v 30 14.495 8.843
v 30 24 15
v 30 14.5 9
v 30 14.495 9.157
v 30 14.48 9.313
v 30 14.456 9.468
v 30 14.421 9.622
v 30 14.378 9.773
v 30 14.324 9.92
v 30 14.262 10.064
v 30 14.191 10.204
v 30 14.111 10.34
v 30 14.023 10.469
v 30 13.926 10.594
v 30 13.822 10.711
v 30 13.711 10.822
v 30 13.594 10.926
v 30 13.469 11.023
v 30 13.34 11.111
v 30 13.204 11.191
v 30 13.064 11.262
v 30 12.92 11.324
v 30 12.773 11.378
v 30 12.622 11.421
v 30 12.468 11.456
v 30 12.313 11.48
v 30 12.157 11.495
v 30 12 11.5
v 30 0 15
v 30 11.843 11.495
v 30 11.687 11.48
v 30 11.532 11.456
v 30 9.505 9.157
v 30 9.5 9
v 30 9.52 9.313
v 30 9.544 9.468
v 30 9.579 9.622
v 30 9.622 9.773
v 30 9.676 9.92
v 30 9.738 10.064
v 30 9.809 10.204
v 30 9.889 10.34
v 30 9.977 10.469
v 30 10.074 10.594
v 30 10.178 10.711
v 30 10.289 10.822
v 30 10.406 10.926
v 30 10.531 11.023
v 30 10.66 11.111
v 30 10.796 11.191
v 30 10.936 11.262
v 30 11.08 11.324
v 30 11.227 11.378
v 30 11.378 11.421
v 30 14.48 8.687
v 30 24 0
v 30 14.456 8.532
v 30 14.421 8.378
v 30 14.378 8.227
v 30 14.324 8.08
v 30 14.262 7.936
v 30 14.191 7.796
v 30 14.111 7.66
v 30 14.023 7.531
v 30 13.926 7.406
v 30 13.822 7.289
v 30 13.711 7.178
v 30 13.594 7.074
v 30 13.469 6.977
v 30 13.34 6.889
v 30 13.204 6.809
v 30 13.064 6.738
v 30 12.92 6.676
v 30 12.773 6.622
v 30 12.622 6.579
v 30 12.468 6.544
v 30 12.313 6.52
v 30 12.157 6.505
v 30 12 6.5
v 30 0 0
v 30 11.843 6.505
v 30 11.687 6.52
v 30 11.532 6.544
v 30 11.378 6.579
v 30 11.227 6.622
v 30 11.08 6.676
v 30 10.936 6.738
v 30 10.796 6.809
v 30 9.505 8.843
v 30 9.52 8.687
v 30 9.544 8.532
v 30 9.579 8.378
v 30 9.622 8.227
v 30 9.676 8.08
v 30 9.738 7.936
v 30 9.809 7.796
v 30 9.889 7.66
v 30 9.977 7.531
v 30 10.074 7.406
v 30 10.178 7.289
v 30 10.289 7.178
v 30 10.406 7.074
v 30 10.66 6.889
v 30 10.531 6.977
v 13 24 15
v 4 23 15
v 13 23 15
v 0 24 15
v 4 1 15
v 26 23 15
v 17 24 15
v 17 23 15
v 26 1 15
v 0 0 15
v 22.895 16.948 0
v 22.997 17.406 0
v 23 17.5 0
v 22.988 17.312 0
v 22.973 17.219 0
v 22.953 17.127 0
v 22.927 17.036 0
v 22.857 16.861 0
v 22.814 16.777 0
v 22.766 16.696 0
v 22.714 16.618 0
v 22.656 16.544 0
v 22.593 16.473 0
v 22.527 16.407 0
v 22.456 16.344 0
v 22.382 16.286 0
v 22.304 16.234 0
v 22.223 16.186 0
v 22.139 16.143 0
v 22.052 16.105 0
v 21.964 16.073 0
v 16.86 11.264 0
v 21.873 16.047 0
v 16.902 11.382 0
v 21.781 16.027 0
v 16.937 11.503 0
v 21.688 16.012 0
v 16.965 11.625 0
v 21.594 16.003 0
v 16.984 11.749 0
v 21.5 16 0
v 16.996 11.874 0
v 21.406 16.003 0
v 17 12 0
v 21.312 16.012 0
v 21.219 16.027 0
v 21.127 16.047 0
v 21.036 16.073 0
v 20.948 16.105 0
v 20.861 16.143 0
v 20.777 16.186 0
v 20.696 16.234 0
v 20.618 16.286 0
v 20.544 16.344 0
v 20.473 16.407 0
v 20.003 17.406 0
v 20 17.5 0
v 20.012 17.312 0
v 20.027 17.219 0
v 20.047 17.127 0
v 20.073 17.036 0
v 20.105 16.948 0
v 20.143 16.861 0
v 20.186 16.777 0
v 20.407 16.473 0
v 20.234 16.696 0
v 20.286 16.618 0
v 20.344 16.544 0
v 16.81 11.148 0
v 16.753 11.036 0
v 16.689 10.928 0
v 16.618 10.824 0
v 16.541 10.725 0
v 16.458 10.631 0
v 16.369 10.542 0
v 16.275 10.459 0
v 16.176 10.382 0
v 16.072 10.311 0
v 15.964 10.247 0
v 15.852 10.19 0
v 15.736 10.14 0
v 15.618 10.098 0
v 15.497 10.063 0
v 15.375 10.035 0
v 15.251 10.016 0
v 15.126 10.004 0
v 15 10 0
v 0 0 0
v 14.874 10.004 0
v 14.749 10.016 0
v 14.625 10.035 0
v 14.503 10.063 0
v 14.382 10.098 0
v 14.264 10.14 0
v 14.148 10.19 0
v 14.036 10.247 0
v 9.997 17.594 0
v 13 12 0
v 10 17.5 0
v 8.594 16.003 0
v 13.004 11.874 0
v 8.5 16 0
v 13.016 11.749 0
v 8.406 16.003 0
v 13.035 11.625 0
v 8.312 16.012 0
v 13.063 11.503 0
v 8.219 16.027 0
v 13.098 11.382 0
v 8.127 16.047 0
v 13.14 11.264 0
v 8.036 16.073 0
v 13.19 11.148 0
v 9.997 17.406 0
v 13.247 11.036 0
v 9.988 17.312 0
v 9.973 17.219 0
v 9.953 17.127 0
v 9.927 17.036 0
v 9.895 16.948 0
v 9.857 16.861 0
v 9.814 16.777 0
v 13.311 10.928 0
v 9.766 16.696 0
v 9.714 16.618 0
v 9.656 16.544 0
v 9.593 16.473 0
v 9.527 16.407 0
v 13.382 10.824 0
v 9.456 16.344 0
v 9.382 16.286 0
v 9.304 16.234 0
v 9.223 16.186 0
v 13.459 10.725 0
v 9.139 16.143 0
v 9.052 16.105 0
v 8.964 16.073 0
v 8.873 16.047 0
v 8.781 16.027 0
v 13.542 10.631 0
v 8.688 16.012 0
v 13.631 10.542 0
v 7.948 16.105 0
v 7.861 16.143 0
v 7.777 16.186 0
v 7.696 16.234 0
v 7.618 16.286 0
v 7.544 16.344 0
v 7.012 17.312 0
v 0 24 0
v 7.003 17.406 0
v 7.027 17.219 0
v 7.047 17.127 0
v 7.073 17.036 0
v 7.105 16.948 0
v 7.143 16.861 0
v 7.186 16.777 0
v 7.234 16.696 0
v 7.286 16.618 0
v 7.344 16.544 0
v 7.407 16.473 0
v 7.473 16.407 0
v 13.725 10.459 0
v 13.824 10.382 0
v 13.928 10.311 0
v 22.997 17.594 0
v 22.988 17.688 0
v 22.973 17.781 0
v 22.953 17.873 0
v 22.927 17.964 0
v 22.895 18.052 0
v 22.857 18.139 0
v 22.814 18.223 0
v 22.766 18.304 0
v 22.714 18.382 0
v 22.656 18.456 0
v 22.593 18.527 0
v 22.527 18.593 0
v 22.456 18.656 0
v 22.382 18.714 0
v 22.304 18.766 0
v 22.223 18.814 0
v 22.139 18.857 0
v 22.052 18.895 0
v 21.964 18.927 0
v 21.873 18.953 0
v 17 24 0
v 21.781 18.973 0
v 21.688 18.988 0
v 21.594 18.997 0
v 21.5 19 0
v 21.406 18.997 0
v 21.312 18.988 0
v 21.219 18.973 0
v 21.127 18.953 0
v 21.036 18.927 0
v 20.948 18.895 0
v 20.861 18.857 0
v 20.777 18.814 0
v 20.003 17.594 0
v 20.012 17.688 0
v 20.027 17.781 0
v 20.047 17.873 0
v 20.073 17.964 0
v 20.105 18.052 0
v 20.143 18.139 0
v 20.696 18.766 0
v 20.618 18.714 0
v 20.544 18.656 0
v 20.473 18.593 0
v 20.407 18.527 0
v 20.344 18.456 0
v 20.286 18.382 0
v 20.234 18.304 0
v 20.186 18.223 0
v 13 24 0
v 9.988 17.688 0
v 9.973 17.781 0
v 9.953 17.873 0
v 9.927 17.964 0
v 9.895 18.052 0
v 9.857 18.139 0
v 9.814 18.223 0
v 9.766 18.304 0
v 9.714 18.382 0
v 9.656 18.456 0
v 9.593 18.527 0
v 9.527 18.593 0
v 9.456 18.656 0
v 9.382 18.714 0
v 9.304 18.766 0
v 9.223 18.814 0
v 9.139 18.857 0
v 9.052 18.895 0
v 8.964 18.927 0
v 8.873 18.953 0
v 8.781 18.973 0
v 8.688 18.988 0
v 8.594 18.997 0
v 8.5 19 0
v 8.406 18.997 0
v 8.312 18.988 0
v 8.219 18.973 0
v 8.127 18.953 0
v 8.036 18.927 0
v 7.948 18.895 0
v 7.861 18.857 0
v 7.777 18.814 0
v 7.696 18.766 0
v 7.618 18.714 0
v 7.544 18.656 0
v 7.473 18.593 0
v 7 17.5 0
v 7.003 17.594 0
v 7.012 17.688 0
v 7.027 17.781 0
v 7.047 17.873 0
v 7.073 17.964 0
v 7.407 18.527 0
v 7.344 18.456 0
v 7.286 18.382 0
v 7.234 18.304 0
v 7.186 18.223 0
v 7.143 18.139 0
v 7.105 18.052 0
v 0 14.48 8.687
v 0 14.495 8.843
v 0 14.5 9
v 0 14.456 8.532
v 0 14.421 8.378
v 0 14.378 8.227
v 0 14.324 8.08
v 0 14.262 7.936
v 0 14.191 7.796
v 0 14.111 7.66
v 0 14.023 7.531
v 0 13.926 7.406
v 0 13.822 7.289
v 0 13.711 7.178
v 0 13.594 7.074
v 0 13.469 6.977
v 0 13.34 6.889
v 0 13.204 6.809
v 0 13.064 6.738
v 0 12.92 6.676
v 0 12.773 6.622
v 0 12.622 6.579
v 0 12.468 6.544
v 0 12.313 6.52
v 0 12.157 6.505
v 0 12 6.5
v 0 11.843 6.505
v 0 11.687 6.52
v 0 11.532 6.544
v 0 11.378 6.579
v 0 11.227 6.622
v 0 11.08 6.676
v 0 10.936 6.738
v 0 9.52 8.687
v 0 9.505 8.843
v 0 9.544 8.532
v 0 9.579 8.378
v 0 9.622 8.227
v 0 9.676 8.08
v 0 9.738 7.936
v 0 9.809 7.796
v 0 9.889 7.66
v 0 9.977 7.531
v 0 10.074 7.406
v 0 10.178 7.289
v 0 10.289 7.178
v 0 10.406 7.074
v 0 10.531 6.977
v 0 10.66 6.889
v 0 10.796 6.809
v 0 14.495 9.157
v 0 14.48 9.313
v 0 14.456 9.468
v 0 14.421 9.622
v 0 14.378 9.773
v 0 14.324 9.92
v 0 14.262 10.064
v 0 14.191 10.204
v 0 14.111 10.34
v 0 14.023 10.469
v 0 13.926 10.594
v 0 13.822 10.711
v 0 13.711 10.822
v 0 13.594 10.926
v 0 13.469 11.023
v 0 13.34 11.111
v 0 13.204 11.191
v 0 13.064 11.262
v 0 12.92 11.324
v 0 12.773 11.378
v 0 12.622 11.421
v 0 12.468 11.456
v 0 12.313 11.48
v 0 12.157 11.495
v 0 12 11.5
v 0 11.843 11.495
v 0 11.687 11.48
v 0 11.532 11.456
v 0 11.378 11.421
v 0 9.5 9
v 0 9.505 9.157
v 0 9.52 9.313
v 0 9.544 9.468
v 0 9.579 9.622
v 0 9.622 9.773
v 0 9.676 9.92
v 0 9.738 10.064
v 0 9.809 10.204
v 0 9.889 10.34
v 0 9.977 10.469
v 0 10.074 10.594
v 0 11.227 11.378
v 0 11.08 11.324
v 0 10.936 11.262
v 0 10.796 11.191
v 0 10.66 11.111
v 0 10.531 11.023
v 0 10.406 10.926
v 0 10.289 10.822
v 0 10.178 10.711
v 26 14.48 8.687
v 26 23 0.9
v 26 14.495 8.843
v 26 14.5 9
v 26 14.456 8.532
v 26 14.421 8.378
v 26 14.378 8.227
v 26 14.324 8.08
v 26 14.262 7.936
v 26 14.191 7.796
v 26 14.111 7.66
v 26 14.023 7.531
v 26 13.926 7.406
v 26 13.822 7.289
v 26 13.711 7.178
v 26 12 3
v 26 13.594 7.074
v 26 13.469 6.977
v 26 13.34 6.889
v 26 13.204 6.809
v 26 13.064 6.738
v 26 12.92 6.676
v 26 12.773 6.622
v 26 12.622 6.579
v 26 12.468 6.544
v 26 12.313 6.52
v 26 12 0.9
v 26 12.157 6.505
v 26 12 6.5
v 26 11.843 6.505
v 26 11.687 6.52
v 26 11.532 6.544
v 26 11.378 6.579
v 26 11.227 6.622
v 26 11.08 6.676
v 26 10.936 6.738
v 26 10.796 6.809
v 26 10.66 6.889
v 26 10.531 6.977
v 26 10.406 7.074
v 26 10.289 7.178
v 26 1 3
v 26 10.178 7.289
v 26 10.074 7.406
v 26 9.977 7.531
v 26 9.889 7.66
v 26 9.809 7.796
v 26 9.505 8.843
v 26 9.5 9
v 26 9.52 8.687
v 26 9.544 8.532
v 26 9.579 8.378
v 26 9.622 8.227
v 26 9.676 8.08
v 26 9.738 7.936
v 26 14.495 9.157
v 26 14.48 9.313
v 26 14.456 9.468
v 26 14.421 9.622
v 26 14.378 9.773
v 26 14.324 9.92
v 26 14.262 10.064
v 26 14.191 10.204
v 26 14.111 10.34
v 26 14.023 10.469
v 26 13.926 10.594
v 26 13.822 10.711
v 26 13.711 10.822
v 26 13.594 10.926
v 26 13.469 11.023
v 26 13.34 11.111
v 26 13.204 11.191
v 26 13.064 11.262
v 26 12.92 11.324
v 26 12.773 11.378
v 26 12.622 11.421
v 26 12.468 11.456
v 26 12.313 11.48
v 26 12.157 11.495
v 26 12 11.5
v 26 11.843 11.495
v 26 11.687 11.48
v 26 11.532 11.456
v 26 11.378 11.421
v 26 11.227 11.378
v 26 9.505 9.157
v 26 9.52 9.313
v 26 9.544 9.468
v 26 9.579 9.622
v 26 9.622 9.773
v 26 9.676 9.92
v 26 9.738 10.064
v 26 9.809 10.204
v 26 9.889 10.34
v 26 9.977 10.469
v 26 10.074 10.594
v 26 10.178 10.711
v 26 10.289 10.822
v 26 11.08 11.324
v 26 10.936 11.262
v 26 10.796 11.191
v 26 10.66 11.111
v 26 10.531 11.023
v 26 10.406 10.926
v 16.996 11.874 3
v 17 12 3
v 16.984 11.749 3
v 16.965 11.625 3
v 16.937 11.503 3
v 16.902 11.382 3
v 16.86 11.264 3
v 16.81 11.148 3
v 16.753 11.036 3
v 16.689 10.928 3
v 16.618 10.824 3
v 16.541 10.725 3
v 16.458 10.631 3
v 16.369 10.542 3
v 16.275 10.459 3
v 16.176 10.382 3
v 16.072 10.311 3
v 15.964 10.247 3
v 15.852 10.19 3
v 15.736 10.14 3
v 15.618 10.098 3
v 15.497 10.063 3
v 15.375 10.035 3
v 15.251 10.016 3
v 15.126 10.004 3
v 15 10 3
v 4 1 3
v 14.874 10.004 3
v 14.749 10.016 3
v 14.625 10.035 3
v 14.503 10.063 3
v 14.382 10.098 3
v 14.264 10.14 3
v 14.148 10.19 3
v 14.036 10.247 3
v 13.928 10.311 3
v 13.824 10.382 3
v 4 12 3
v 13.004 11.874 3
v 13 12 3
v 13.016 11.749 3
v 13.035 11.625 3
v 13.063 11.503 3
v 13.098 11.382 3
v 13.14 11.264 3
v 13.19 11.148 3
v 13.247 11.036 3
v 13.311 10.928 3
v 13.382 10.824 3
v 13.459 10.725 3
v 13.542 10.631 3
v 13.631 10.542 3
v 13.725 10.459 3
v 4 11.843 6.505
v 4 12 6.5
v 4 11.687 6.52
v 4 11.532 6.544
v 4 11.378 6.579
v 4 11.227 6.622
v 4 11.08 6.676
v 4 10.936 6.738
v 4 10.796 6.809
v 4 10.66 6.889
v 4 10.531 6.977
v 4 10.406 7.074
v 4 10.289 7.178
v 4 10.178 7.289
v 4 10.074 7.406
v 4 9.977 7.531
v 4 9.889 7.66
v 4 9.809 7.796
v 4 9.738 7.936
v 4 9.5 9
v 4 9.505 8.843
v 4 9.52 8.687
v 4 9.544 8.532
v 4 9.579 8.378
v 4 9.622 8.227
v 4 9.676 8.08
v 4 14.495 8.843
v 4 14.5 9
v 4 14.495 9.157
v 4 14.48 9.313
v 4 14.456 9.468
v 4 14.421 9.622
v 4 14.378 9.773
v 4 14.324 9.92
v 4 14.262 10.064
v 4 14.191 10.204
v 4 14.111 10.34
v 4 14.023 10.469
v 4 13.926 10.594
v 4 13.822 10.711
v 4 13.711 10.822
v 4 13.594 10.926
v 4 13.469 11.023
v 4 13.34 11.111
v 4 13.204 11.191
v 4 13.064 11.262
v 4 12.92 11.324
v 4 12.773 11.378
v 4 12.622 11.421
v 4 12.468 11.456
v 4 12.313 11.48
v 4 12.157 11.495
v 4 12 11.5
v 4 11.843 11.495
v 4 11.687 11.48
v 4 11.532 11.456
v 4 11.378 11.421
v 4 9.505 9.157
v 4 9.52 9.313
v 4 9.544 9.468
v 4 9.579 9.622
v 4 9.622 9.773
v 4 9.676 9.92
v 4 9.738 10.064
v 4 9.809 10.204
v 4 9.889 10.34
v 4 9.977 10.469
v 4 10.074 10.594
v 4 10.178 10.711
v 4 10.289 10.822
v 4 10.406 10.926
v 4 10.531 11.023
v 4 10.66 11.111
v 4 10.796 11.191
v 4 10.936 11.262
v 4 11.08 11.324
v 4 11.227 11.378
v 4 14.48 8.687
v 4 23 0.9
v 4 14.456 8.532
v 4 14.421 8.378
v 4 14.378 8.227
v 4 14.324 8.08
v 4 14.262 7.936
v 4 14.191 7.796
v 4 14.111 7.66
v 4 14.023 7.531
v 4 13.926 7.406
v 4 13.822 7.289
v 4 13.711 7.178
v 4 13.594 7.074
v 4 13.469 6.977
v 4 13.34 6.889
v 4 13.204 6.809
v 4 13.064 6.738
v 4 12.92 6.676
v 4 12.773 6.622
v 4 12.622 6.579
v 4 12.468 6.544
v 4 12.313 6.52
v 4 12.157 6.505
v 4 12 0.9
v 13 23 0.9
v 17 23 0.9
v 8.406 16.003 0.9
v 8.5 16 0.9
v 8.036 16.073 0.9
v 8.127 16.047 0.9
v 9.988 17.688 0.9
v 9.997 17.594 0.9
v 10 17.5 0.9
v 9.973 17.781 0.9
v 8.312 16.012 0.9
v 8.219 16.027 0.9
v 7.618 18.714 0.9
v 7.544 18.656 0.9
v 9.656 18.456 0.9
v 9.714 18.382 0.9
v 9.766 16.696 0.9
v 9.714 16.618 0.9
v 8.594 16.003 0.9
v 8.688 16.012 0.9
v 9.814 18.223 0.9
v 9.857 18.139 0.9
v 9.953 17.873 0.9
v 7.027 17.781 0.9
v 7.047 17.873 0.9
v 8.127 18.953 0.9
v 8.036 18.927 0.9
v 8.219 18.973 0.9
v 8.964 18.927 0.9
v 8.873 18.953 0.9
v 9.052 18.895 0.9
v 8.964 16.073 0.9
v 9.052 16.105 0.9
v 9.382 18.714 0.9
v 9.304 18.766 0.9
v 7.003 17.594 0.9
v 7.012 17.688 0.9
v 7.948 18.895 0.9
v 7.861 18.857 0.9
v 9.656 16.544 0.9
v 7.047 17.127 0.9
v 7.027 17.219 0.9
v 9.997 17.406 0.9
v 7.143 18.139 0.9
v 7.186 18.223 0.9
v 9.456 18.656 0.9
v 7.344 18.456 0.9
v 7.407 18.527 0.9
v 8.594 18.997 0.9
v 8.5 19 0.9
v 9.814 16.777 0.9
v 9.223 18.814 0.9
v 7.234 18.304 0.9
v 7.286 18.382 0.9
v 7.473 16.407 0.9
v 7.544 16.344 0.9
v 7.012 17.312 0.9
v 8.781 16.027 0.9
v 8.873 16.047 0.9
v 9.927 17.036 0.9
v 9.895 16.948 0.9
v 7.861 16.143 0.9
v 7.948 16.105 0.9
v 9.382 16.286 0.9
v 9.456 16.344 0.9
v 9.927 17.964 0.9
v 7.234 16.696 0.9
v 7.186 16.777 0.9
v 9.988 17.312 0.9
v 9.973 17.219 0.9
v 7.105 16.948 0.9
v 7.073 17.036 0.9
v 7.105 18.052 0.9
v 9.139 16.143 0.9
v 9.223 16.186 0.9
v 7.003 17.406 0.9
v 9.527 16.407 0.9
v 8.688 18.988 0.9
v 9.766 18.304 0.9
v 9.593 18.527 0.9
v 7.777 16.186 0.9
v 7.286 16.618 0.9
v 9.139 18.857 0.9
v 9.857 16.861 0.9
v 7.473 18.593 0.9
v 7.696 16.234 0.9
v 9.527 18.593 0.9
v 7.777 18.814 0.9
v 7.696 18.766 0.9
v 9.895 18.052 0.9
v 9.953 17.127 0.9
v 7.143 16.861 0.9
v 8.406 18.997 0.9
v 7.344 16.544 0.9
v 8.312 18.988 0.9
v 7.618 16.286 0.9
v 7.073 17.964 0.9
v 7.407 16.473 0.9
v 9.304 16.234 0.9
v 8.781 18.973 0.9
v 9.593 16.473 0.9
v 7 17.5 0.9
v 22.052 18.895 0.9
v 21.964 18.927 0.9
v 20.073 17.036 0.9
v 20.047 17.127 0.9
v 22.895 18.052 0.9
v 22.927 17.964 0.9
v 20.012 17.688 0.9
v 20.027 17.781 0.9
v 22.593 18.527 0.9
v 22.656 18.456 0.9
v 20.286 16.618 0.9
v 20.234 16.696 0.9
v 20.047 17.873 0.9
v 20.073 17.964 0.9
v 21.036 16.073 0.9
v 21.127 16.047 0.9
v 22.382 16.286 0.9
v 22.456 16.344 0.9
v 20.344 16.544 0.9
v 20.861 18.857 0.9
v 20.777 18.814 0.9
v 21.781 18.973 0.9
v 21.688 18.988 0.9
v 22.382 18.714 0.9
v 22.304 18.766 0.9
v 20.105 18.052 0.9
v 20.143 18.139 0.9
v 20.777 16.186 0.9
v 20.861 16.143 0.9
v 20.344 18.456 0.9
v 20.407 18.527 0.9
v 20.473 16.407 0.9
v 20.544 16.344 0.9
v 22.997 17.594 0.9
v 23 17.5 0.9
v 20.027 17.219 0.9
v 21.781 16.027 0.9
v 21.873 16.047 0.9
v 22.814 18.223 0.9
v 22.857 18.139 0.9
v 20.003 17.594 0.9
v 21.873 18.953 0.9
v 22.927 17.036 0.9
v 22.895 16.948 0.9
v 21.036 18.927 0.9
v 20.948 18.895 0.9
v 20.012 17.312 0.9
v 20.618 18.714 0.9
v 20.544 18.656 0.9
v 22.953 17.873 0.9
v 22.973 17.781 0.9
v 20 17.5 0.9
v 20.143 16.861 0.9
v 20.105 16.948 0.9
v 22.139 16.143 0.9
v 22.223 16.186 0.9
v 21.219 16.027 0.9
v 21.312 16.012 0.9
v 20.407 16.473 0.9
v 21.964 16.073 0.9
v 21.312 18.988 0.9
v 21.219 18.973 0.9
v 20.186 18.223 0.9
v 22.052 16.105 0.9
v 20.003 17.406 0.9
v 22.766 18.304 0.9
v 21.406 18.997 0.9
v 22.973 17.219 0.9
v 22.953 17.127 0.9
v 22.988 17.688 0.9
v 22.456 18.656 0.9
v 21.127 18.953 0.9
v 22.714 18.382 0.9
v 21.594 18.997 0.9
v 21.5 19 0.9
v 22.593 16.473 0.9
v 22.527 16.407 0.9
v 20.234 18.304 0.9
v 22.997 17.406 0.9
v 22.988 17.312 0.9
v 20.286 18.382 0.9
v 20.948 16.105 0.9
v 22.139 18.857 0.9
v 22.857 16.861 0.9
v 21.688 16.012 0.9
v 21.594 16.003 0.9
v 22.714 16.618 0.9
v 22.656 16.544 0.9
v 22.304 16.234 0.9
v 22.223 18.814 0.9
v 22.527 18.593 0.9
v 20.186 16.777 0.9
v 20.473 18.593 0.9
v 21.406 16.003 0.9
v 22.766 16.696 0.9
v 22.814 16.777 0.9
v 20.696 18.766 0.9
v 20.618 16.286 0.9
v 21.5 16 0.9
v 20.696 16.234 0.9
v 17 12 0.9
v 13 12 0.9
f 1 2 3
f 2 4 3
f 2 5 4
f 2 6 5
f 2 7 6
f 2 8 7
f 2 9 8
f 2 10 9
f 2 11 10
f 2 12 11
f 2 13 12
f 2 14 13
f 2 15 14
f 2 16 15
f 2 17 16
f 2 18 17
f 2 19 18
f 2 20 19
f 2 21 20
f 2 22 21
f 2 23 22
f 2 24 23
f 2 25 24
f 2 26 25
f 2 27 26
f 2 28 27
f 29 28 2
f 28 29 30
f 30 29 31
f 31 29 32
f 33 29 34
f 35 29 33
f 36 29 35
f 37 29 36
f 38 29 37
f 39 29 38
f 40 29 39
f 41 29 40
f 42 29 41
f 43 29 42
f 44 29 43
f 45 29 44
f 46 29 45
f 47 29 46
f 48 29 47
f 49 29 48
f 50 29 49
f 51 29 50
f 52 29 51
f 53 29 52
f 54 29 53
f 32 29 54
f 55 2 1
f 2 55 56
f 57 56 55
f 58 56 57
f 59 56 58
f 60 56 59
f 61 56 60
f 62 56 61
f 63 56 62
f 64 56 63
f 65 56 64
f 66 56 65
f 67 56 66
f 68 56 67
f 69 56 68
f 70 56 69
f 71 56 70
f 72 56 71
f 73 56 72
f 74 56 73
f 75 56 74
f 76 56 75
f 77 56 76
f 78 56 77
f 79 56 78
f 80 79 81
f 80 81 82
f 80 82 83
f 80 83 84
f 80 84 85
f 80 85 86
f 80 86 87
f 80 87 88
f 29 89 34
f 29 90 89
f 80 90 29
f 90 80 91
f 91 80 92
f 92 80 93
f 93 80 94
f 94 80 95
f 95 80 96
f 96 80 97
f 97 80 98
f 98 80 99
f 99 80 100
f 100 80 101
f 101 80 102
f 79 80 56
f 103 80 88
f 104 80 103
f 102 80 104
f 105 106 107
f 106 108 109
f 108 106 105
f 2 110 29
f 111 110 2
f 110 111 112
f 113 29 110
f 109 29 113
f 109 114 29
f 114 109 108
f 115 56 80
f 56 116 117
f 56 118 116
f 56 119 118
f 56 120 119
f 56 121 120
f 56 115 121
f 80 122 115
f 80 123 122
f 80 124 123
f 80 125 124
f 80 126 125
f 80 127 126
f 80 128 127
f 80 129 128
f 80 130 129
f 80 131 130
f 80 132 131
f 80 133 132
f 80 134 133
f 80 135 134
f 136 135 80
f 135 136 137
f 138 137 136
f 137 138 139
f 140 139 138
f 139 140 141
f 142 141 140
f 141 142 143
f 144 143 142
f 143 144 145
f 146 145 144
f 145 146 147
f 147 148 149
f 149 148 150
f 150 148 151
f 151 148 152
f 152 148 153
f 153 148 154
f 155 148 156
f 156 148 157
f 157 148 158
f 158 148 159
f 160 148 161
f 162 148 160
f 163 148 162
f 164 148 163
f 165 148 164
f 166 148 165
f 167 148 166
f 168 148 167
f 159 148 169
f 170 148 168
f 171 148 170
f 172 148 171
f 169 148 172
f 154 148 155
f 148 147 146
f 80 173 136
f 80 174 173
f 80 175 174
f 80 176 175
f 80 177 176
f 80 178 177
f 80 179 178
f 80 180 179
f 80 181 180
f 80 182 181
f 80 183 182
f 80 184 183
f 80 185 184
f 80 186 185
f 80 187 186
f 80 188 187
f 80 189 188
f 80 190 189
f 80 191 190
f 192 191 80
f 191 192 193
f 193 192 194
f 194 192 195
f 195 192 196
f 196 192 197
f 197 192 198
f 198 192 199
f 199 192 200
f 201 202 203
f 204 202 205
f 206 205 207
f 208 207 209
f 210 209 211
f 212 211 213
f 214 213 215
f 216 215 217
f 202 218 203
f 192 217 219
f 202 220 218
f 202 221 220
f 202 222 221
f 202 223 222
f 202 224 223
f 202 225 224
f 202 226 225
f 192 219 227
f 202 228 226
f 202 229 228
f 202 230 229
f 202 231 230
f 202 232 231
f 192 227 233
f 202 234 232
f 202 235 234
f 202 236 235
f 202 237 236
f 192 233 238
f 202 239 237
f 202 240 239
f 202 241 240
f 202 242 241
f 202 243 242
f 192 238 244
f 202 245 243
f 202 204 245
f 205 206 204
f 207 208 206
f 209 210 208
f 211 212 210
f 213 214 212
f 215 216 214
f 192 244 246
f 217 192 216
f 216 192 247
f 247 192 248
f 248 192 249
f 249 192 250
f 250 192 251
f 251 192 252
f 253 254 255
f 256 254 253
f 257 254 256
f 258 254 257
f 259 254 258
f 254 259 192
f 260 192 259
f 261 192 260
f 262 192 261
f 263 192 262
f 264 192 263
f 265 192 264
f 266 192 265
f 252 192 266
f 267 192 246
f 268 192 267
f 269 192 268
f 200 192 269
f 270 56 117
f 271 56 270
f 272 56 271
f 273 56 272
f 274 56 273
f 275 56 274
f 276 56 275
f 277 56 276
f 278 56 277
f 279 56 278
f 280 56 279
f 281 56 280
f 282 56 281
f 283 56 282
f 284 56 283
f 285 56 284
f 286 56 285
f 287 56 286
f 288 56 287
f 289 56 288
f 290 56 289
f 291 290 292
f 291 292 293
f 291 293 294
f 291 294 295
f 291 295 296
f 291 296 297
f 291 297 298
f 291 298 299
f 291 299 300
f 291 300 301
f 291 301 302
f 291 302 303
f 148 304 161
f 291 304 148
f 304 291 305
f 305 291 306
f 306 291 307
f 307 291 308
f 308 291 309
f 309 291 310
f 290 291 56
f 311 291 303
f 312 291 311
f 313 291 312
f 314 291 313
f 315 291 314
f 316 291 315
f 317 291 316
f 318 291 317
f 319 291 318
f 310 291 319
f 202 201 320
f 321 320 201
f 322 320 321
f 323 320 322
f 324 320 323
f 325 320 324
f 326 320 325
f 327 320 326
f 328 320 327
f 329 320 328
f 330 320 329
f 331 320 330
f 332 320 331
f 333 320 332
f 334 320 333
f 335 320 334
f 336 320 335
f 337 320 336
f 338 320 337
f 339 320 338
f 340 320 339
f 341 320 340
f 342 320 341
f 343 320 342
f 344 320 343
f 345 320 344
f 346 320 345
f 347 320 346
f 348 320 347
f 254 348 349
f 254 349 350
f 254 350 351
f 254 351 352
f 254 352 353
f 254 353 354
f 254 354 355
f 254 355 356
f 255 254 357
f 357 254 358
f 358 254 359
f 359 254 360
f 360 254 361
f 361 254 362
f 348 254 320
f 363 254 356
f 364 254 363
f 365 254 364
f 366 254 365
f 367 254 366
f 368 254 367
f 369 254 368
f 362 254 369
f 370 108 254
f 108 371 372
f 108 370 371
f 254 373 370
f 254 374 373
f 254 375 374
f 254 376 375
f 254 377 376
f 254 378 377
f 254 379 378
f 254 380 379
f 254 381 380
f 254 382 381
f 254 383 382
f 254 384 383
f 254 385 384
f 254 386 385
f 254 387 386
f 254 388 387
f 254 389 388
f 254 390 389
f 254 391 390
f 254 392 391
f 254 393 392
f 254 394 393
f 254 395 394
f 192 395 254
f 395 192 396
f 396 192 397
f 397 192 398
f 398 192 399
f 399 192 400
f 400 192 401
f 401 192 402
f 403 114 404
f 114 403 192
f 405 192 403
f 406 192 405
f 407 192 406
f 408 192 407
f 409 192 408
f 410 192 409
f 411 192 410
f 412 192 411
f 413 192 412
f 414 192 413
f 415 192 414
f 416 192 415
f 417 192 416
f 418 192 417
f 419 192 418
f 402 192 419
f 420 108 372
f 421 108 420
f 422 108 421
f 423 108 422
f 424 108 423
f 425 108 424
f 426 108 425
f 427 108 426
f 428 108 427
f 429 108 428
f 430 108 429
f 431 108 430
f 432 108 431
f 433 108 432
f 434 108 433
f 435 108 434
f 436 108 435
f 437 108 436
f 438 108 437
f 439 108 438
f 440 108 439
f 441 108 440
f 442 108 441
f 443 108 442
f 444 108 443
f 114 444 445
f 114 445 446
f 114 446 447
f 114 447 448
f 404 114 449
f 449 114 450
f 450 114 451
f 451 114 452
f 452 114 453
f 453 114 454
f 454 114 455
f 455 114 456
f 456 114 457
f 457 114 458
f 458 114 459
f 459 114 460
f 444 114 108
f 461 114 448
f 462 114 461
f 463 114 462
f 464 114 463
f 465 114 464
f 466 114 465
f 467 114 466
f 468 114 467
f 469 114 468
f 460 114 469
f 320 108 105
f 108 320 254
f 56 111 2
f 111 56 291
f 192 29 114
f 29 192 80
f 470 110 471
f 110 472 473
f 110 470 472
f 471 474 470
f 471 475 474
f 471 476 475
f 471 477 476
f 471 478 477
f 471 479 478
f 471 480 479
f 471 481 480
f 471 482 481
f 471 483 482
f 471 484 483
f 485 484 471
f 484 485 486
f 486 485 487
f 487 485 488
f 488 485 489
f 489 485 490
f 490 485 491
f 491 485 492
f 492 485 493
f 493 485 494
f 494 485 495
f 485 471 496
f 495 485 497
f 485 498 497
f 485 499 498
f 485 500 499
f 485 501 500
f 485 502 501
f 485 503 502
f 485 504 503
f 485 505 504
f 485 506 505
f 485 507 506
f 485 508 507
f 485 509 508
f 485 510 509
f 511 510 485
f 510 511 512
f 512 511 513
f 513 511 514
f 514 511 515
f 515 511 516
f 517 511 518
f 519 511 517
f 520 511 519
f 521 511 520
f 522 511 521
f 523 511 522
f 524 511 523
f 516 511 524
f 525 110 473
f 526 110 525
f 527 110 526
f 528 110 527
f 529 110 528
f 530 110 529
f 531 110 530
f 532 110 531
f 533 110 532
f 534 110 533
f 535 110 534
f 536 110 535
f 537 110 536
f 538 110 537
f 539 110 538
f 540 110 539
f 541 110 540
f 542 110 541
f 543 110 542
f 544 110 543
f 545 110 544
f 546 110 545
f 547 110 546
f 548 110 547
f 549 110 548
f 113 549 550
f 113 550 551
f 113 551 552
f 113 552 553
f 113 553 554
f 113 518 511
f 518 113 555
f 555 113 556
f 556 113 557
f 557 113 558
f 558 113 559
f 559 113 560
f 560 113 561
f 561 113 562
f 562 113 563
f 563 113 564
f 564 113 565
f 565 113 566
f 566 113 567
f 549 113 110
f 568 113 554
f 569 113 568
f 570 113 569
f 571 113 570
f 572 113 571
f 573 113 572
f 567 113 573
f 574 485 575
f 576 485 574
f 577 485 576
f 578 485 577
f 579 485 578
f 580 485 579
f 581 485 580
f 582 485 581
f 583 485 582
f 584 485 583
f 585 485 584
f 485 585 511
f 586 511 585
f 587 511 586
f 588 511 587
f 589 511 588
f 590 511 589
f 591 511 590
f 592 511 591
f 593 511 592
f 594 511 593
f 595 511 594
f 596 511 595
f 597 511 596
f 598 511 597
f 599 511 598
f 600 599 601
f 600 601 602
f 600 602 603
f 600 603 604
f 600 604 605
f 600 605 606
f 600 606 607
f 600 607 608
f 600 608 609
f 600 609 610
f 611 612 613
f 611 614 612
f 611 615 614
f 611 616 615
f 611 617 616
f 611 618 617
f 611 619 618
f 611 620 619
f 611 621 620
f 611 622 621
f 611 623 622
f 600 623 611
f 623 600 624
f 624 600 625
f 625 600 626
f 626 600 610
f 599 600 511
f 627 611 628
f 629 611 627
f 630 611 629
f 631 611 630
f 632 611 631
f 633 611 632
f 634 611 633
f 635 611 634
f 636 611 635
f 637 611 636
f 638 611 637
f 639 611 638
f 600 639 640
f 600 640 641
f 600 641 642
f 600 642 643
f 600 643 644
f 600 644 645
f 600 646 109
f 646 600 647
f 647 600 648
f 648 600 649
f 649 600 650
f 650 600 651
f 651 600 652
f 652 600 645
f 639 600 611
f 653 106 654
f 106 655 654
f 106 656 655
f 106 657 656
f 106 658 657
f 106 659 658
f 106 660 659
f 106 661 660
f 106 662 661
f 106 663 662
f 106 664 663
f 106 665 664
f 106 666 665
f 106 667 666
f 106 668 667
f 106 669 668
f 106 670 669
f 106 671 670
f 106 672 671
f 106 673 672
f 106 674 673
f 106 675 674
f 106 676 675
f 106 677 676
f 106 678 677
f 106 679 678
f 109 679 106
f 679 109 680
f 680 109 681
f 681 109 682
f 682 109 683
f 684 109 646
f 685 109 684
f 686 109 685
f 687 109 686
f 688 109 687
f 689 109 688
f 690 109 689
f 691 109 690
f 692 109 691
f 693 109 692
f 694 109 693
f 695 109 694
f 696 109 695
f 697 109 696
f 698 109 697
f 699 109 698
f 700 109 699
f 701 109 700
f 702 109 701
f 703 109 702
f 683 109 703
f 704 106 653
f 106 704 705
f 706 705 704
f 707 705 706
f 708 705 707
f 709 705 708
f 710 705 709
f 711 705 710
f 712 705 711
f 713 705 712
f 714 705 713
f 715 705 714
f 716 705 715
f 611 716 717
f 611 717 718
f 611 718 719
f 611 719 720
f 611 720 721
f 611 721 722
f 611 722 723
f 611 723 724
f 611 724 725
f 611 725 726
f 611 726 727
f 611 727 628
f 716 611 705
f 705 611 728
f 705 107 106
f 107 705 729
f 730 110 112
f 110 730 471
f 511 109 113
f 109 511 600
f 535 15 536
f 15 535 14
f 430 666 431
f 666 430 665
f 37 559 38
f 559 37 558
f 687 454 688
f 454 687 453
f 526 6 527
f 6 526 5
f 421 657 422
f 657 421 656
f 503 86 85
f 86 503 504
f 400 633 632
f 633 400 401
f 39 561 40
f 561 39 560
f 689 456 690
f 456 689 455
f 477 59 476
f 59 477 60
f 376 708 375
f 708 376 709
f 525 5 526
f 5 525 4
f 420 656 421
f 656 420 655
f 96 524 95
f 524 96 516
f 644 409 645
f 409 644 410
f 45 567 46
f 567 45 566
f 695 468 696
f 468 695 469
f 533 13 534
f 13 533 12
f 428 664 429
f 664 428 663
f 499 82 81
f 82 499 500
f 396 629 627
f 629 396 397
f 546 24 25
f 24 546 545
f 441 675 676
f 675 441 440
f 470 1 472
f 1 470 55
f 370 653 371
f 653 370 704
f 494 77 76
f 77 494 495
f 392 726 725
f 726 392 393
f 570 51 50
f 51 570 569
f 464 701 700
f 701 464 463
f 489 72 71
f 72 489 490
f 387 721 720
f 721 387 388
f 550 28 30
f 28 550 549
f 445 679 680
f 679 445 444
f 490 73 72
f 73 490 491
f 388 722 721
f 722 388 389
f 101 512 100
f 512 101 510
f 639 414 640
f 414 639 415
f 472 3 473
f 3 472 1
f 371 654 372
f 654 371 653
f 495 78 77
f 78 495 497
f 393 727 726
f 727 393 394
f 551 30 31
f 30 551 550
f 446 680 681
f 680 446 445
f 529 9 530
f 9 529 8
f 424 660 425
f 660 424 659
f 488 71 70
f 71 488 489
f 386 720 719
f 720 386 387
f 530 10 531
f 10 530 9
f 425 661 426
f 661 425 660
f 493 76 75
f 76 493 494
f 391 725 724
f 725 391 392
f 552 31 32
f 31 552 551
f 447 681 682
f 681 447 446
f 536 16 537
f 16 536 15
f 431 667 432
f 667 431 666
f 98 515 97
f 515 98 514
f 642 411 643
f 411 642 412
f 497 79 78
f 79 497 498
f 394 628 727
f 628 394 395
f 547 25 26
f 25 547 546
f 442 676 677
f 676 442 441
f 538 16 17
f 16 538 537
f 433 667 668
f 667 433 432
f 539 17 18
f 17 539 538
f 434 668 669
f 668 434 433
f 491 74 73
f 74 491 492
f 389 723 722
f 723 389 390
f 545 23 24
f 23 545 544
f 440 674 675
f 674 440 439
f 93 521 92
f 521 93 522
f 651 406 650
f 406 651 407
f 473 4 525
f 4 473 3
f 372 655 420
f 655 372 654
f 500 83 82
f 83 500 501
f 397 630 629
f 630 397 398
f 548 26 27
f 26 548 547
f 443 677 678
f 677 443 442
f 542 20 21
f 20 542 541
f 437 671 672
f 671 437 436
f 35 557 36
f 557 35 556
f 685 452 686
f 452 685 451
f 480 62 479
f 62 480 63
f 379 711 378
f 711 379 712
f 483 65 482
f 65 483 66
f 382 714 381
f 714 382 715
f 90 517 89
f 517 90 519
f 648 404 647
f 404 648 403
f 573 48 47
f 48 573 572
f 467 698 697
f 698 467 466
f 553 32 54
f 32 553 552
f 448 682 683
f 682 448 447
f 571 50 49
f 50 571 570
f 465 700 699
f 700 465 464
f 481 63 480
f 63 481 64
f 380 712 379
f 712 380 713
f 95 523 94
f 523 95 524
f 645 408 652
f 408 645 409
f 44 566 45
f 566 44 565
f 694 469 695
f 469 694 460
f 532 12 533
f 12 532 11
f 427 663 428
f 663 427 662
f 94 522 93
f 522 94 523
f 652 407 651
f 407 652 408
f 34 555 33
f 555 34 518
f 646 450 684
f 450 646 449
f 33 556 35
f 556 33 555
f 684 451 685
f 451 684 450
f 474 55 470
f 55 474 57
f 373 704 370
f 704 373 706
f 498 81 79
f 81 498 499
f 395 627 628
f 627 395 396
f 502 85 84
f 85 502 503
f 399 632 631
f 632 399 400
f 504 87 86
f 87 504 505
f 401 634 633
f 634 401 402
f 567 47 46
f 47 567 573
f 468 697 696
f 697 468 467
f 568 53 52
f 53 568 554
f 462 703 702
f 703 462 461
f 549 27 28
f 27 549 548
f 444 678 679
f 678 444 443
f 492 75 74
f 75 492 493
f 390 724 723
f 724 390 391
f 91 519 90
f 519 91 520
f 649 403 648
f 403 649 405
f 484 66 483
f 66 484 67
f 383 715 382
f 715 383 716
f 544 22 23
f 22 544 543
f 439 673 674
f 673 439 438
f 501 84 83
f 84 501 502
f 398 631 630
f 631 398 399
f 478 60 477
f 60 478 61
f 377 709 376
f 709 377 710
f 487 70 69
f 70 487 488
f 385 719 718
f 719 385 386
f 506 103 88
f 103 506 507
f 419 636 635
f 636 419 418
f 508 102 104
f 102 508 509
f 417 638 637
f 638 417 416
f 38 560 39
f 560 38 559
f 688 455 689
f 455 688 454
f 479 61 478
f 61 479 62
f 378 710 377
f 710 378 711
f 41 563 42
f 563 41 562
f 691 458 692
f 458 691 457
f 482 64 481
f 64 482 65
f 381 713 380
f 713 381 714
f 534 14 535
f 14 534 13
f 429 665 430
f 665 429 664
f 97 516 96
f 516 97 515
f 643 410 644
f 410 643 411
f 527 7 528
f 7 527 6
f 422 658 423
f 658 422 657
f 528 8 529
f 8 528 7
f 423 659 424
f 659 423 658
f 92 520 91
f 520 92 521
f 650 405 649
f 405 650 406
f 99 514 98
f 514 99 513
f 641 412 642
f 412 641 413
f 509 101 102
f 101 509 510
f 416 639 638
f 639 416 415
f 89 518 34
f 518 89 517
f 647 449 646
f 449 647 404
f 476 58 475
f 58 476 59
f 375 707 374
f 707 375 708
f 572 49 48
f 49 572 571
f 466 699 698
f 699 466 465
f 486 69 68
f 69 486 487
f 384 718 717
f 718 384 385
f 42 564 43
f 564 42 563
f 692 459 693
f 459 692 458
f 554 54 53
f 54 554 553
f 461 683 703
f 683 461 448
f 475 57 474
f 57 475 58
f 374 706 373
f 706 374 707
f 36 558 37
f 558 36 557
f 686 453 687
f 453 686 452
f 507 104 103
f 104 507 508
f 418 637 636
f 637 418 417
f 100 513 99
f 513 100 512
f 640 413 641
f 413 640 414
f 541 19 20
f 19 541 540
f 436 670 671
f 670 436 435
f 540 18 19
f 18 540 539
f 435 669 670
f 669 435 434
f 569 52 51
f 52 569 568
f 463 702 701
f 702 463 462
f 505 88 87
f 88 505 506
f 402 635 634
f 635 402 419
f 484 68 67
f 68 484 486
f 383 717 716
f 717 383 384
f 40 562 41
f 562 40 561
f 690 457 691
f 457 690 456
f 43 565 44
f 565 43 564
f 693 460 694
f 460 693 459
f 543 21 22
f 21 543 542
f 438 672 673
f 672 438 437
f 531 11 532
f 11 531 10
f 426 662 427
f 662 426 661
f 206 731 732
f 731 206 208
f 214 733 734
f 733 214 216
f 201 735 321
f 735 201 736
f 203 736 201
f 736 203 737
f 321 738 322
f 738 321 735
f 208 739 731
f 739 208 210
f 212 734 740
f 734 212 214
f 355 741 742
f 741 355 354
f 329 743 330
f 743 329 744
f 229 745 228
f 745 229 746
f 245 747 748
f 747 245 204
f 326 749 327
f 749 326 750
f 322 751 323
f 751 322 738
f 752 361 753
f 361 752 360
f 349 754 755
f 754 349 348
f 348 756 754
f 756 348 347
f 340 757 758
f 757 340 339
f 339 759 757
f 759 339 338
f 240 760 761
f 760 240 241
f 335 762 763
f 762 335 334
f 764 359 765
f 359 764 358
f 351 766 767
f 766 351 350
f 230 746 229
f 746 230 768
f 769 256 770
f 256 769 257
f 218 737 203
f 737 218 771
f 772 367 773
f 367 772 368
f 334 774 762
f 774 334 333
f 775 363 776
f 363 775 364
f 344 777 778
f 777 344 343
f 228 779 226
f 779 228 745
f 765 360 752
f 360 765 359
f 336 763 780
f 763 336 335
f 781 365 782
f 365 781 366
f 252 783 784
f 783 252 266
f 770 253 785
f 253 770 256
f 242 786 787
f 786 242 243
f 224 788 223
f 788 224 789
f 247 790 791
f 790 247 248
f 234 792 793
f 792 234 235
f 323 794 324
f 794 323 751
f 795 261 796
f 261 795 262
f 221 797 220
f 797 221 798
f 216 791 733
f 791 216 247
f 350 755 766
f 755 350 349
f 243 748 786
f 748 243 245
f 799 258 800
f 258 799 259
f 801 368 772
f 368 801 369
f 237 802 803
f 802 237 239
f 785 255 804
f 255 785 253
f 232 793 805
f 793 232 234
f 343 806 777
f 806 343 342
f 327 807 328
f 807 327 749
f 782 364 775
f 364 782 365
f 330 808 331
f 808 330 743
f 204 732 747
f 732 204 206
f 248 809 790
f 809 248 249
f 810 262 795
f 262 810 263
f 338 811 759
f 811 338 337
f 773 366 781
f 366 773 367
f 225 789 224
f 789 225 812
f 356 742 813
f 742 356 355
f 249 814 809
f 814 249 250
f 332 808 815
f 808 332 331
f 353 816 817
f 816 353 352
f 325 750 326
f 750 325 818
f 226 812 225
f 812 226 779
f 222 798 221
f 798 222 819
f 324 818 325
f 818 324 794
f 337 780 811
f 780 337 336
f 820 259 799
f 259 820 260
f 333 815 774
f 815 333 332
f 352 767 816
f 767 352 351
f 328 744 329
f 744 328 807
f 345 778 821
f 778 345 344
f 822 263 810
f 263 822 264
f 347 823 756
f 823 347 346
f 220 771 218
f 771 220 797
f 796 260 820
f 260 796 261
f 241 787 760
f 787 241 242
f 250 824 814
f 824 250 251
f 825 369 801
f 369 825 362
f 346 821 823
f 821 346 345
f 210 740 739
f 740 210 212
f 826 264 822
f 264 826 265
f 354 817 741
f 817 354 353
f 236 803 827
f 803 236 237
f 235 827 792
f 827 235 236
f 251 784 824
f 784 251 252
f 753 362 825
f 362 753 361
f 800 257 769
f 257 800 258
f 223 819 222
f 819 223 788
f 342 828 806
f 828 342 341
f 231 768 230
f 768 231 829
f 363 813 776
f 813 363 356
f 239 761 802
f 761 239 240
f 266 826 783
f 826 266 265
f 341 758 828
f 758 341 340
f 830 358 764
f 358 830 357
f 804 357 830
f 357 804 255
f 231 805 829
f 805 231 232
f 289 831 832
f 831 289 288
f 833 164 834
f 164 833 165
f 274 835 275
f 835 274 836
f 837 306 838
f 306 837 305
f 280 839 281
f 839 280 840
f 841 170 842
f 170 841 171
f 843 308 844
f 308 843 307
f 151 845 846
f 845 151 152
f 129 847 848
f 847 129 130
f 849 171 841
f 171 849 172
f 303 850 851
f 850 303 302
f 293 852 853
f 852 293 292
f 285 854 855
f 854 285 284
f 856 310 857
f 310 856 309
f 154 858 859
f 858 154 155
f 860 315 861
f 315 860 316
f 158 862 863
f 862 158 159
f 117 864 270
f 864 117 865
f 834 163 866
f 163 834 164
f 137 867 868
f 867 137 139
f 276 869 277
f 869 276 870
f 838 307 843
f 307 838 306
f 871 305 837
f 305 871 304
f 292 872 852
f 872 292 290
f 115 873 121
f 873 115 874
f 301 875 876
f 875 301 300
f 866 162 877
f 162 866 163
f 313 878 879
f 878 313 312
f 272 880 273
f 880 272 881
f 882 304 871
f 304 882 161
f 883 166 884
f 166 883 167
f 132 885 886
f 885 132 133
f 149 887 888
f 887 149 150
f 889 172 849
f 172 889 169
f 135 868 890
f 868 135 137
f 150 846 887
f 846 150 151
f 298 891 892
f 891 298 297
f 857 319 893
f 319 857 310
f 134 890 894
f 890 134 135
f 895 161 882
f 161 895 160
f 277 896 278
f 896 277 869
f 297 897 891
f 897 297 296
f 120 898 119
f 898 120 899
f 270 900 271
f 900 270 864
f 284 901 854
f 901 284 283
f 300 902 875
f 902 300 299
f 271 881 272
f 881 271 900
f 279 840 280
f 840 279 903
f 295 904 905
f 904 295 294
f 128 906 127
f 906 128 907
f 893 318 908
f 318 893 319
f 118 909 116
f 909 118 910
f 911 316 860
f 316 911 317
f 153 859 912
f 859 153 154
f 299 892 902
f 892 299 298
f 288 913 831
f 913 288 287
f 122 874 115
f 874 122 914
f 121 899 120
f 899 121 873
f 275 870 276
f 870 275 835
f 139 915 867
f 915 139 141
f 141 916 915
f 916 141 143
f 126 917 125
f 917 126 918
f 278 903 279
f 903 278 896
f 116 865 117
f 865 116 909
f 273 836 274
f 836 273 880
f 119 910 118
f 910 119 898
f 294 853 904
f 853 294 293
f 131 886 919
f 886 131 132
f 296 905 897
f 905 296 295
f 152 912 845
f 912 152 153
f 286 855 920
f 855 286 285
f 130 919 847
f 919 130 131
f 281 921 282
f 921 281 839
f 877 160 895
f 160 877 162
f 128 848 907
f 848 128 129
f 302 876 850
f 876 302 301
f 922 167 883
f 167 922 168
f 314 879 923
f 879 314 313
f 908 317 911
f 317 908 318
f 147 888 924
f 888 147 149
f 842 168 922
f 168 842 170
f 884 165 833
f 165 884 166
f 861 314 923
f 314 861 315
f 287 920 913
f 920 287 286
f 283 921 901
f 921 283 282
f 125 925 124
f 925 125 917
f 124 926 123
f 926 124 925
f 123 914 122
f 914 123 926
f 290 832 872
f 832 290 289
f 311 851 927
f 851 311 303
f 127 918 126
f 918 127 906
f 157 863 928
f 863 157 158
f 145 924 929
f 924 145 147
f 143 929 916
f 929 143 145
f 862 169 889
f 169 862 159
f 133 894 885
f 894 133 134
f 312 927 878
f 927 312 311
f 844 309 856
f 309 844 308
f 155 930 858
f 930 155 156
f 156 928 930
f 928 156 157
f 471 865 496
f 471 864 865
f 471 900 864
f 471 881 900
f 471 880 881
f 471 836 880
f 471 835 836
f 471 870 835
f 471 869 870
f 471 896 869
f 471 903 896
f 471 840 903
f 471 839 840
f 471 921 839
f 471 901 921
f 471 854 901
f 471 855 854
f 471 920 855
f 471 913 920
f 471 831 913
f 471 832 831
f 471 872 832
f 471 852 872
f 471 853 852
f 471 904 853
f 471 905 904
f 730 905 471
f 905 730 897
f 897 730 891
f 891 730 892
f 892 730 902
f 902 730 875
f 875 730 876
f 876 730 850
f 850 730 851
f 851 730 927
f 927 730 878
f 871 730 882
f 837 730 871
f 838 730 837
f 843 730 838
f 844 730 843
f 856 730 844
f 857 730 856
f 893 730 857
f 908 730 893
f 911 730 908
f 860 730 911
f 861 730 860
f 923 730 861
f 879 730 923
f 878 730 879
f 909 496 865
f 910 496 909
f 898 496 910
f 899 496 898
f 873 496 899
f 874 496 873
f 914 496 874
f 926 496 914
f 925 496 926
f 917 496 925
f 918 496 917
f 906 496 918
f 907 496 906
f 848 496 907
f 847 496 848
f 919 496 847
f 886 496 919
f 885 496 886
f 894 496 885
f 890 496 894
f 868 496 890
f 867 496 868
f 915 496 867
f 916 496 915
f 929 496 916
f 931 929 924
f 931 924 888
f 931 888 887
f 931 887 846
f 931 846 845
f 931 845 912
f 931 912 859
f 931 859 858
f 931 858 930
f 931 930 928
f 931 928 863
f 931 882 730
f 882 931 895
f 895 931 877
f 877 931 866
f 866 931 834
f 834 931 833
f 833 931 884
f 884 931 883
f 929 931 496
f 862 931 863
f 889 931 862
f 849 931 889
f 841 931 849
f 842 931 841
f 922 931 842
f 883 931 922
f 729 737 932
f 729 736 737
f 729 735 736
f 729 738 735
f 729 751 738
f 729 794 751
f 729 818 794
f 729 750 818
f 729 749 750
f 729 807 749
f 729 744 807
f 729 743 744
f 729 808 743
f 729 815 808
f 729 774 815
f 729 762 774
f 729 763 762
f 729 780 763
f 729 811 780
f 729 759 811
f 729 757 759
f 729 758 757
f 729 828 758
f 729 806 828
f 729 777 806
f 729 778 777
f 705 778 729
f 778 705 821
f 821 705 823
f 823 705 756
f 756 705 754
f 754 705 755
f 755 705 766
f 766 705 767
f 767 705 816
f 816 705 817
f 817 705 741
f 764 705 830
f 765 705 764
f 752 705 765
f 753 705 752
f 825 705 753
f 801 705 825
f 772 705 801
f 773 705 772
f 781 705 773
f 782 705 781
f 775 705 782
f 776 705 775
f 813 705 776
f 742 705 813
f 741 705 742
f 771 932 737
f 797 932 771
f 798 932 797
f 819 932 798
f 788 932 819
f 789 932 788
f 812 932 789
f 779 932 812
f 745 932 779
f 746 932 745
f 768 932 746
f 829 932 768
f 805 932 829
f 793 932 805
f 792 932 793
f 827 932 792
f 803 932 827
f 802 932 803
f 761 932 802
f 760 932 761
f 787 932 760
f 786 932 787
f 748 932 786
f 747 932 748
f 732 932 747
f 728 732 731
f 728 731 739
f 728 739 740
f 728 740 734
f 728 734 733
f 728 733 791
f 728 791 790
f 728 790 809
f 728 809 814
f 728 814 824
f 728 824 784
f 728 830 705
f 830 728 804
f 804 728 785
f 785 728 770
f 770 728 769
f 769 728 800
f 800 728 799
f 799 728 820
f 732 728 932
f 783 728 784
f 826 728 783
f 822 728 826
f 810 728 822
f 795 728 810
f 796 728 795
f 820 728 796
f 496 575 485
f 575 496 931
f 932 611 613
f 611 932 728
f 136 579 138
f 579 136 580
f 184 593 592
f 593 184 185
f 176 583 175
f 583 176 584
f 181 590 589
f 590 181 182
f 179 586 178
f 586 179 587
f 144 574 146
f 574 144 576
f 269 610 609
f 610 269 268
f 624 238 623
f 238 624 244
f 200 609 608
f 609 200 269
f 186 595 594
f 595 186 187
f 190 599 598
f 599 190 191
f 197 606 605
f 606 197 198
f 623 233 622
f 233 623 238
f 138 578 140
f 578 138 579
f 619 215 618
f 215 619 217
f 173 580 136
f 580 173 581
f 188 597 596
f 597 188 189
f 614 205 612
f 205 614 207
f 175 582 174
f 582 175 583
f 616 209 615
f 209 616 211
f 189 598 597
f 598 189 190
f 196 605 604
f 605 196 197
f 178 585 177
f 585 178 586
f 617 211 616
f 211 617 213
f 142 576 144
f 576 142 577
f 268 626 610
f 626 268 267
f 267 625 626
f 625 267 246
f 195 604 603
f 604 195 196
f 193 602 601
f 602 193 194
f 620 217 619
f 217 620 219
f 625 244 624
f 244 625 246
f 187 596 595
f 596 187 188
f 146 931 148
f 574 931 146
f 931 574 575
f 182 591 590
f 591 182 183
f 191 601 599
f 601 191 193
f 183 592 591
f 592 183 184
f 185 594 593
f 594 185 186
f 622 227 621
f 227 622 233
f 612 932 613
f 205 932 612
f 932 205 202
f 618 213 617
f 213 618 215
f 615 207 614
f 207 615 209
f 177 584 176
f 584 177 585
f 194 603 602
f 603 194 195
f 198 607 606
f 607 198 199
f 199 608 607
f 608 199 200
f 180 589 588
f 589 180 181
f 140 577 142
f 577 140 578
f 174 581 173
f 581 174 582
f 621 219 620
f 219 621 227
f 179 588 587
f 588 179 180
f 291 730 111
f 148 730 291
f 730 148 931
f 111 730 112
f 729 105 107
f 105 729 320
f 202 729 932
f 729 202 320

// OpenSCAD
/**

Brackets for Teyes reversing camera
@idnorton

Licenced as Creative Commons Attribution Non Commercial 3.0
See https://creativecommons.org/licenses/by-nc/3.0/

Specifically you may not sell the design or products using the design.
You're welcome to use the design to build things for your own use :)

Perimiters: 4
Seam position: Random

**/

camera_x = 22;
camera_y = 22;
camera_z = 3;

cable = 4;
screw_camera = 3;
screw_mount = 4;
screw_pivot = 5;
screw_spacing_camera = 13;

heat_set_insert = 4;
external_wall = 1;
external_x = camera_x + (2 * heat_set_insert);
external_y = camera_y + (2 * external_wall);
external_z = 15;

screw_x_inset = (camera_x - screw_spacing_camera)/2;

screw_x = (external_x - screw_spacing_camera)/2;
screw_y = (external_y - (2 * external_wall) - screw_x_inset);

$fn = 100;

difference() {

    // External cube
    cube([external_x, external_y, external_z]);

    // Internal cube
    translate([((external_x - camera_x) / 2), external_wall, camera_z]) {
        cube([camera_x, camera_y, external_z]);
    }

    // Mounting holes through the sides
    translate([-1, external_y/2, (camera_z+external_z)/2]) {
        rotate([0, 90, 0]) cylinder(h = external_x + external_wall, d = screw_pivot);
    }

    // Camera mounting hole left
    translate([screw_x, screw_y, 0]) {
        cylinder(h = external_z, d = screw_camera);
    }

    // Camera mounting hole right
    translate([external_x - screw_x, screw_y, 0]) {
        cylinder(h = external_z, d = screw_camera);
    }

    // Recess for camera bosses
    translate([((external_x - camera_x) / 2), (camera_y/2) + external_wall, camera_z - 2.1]) {
        cube([camera_x, camera_y/2, 4]);
    }

    // Cable slot
    translate([external_x/2, external_y/2, 0]) cylinder(h = camera_z, d = cable);
    translate([external_x/2 - (cable/2), external_y/2, 0]) cube([cable, external_y, external_z]);
}
